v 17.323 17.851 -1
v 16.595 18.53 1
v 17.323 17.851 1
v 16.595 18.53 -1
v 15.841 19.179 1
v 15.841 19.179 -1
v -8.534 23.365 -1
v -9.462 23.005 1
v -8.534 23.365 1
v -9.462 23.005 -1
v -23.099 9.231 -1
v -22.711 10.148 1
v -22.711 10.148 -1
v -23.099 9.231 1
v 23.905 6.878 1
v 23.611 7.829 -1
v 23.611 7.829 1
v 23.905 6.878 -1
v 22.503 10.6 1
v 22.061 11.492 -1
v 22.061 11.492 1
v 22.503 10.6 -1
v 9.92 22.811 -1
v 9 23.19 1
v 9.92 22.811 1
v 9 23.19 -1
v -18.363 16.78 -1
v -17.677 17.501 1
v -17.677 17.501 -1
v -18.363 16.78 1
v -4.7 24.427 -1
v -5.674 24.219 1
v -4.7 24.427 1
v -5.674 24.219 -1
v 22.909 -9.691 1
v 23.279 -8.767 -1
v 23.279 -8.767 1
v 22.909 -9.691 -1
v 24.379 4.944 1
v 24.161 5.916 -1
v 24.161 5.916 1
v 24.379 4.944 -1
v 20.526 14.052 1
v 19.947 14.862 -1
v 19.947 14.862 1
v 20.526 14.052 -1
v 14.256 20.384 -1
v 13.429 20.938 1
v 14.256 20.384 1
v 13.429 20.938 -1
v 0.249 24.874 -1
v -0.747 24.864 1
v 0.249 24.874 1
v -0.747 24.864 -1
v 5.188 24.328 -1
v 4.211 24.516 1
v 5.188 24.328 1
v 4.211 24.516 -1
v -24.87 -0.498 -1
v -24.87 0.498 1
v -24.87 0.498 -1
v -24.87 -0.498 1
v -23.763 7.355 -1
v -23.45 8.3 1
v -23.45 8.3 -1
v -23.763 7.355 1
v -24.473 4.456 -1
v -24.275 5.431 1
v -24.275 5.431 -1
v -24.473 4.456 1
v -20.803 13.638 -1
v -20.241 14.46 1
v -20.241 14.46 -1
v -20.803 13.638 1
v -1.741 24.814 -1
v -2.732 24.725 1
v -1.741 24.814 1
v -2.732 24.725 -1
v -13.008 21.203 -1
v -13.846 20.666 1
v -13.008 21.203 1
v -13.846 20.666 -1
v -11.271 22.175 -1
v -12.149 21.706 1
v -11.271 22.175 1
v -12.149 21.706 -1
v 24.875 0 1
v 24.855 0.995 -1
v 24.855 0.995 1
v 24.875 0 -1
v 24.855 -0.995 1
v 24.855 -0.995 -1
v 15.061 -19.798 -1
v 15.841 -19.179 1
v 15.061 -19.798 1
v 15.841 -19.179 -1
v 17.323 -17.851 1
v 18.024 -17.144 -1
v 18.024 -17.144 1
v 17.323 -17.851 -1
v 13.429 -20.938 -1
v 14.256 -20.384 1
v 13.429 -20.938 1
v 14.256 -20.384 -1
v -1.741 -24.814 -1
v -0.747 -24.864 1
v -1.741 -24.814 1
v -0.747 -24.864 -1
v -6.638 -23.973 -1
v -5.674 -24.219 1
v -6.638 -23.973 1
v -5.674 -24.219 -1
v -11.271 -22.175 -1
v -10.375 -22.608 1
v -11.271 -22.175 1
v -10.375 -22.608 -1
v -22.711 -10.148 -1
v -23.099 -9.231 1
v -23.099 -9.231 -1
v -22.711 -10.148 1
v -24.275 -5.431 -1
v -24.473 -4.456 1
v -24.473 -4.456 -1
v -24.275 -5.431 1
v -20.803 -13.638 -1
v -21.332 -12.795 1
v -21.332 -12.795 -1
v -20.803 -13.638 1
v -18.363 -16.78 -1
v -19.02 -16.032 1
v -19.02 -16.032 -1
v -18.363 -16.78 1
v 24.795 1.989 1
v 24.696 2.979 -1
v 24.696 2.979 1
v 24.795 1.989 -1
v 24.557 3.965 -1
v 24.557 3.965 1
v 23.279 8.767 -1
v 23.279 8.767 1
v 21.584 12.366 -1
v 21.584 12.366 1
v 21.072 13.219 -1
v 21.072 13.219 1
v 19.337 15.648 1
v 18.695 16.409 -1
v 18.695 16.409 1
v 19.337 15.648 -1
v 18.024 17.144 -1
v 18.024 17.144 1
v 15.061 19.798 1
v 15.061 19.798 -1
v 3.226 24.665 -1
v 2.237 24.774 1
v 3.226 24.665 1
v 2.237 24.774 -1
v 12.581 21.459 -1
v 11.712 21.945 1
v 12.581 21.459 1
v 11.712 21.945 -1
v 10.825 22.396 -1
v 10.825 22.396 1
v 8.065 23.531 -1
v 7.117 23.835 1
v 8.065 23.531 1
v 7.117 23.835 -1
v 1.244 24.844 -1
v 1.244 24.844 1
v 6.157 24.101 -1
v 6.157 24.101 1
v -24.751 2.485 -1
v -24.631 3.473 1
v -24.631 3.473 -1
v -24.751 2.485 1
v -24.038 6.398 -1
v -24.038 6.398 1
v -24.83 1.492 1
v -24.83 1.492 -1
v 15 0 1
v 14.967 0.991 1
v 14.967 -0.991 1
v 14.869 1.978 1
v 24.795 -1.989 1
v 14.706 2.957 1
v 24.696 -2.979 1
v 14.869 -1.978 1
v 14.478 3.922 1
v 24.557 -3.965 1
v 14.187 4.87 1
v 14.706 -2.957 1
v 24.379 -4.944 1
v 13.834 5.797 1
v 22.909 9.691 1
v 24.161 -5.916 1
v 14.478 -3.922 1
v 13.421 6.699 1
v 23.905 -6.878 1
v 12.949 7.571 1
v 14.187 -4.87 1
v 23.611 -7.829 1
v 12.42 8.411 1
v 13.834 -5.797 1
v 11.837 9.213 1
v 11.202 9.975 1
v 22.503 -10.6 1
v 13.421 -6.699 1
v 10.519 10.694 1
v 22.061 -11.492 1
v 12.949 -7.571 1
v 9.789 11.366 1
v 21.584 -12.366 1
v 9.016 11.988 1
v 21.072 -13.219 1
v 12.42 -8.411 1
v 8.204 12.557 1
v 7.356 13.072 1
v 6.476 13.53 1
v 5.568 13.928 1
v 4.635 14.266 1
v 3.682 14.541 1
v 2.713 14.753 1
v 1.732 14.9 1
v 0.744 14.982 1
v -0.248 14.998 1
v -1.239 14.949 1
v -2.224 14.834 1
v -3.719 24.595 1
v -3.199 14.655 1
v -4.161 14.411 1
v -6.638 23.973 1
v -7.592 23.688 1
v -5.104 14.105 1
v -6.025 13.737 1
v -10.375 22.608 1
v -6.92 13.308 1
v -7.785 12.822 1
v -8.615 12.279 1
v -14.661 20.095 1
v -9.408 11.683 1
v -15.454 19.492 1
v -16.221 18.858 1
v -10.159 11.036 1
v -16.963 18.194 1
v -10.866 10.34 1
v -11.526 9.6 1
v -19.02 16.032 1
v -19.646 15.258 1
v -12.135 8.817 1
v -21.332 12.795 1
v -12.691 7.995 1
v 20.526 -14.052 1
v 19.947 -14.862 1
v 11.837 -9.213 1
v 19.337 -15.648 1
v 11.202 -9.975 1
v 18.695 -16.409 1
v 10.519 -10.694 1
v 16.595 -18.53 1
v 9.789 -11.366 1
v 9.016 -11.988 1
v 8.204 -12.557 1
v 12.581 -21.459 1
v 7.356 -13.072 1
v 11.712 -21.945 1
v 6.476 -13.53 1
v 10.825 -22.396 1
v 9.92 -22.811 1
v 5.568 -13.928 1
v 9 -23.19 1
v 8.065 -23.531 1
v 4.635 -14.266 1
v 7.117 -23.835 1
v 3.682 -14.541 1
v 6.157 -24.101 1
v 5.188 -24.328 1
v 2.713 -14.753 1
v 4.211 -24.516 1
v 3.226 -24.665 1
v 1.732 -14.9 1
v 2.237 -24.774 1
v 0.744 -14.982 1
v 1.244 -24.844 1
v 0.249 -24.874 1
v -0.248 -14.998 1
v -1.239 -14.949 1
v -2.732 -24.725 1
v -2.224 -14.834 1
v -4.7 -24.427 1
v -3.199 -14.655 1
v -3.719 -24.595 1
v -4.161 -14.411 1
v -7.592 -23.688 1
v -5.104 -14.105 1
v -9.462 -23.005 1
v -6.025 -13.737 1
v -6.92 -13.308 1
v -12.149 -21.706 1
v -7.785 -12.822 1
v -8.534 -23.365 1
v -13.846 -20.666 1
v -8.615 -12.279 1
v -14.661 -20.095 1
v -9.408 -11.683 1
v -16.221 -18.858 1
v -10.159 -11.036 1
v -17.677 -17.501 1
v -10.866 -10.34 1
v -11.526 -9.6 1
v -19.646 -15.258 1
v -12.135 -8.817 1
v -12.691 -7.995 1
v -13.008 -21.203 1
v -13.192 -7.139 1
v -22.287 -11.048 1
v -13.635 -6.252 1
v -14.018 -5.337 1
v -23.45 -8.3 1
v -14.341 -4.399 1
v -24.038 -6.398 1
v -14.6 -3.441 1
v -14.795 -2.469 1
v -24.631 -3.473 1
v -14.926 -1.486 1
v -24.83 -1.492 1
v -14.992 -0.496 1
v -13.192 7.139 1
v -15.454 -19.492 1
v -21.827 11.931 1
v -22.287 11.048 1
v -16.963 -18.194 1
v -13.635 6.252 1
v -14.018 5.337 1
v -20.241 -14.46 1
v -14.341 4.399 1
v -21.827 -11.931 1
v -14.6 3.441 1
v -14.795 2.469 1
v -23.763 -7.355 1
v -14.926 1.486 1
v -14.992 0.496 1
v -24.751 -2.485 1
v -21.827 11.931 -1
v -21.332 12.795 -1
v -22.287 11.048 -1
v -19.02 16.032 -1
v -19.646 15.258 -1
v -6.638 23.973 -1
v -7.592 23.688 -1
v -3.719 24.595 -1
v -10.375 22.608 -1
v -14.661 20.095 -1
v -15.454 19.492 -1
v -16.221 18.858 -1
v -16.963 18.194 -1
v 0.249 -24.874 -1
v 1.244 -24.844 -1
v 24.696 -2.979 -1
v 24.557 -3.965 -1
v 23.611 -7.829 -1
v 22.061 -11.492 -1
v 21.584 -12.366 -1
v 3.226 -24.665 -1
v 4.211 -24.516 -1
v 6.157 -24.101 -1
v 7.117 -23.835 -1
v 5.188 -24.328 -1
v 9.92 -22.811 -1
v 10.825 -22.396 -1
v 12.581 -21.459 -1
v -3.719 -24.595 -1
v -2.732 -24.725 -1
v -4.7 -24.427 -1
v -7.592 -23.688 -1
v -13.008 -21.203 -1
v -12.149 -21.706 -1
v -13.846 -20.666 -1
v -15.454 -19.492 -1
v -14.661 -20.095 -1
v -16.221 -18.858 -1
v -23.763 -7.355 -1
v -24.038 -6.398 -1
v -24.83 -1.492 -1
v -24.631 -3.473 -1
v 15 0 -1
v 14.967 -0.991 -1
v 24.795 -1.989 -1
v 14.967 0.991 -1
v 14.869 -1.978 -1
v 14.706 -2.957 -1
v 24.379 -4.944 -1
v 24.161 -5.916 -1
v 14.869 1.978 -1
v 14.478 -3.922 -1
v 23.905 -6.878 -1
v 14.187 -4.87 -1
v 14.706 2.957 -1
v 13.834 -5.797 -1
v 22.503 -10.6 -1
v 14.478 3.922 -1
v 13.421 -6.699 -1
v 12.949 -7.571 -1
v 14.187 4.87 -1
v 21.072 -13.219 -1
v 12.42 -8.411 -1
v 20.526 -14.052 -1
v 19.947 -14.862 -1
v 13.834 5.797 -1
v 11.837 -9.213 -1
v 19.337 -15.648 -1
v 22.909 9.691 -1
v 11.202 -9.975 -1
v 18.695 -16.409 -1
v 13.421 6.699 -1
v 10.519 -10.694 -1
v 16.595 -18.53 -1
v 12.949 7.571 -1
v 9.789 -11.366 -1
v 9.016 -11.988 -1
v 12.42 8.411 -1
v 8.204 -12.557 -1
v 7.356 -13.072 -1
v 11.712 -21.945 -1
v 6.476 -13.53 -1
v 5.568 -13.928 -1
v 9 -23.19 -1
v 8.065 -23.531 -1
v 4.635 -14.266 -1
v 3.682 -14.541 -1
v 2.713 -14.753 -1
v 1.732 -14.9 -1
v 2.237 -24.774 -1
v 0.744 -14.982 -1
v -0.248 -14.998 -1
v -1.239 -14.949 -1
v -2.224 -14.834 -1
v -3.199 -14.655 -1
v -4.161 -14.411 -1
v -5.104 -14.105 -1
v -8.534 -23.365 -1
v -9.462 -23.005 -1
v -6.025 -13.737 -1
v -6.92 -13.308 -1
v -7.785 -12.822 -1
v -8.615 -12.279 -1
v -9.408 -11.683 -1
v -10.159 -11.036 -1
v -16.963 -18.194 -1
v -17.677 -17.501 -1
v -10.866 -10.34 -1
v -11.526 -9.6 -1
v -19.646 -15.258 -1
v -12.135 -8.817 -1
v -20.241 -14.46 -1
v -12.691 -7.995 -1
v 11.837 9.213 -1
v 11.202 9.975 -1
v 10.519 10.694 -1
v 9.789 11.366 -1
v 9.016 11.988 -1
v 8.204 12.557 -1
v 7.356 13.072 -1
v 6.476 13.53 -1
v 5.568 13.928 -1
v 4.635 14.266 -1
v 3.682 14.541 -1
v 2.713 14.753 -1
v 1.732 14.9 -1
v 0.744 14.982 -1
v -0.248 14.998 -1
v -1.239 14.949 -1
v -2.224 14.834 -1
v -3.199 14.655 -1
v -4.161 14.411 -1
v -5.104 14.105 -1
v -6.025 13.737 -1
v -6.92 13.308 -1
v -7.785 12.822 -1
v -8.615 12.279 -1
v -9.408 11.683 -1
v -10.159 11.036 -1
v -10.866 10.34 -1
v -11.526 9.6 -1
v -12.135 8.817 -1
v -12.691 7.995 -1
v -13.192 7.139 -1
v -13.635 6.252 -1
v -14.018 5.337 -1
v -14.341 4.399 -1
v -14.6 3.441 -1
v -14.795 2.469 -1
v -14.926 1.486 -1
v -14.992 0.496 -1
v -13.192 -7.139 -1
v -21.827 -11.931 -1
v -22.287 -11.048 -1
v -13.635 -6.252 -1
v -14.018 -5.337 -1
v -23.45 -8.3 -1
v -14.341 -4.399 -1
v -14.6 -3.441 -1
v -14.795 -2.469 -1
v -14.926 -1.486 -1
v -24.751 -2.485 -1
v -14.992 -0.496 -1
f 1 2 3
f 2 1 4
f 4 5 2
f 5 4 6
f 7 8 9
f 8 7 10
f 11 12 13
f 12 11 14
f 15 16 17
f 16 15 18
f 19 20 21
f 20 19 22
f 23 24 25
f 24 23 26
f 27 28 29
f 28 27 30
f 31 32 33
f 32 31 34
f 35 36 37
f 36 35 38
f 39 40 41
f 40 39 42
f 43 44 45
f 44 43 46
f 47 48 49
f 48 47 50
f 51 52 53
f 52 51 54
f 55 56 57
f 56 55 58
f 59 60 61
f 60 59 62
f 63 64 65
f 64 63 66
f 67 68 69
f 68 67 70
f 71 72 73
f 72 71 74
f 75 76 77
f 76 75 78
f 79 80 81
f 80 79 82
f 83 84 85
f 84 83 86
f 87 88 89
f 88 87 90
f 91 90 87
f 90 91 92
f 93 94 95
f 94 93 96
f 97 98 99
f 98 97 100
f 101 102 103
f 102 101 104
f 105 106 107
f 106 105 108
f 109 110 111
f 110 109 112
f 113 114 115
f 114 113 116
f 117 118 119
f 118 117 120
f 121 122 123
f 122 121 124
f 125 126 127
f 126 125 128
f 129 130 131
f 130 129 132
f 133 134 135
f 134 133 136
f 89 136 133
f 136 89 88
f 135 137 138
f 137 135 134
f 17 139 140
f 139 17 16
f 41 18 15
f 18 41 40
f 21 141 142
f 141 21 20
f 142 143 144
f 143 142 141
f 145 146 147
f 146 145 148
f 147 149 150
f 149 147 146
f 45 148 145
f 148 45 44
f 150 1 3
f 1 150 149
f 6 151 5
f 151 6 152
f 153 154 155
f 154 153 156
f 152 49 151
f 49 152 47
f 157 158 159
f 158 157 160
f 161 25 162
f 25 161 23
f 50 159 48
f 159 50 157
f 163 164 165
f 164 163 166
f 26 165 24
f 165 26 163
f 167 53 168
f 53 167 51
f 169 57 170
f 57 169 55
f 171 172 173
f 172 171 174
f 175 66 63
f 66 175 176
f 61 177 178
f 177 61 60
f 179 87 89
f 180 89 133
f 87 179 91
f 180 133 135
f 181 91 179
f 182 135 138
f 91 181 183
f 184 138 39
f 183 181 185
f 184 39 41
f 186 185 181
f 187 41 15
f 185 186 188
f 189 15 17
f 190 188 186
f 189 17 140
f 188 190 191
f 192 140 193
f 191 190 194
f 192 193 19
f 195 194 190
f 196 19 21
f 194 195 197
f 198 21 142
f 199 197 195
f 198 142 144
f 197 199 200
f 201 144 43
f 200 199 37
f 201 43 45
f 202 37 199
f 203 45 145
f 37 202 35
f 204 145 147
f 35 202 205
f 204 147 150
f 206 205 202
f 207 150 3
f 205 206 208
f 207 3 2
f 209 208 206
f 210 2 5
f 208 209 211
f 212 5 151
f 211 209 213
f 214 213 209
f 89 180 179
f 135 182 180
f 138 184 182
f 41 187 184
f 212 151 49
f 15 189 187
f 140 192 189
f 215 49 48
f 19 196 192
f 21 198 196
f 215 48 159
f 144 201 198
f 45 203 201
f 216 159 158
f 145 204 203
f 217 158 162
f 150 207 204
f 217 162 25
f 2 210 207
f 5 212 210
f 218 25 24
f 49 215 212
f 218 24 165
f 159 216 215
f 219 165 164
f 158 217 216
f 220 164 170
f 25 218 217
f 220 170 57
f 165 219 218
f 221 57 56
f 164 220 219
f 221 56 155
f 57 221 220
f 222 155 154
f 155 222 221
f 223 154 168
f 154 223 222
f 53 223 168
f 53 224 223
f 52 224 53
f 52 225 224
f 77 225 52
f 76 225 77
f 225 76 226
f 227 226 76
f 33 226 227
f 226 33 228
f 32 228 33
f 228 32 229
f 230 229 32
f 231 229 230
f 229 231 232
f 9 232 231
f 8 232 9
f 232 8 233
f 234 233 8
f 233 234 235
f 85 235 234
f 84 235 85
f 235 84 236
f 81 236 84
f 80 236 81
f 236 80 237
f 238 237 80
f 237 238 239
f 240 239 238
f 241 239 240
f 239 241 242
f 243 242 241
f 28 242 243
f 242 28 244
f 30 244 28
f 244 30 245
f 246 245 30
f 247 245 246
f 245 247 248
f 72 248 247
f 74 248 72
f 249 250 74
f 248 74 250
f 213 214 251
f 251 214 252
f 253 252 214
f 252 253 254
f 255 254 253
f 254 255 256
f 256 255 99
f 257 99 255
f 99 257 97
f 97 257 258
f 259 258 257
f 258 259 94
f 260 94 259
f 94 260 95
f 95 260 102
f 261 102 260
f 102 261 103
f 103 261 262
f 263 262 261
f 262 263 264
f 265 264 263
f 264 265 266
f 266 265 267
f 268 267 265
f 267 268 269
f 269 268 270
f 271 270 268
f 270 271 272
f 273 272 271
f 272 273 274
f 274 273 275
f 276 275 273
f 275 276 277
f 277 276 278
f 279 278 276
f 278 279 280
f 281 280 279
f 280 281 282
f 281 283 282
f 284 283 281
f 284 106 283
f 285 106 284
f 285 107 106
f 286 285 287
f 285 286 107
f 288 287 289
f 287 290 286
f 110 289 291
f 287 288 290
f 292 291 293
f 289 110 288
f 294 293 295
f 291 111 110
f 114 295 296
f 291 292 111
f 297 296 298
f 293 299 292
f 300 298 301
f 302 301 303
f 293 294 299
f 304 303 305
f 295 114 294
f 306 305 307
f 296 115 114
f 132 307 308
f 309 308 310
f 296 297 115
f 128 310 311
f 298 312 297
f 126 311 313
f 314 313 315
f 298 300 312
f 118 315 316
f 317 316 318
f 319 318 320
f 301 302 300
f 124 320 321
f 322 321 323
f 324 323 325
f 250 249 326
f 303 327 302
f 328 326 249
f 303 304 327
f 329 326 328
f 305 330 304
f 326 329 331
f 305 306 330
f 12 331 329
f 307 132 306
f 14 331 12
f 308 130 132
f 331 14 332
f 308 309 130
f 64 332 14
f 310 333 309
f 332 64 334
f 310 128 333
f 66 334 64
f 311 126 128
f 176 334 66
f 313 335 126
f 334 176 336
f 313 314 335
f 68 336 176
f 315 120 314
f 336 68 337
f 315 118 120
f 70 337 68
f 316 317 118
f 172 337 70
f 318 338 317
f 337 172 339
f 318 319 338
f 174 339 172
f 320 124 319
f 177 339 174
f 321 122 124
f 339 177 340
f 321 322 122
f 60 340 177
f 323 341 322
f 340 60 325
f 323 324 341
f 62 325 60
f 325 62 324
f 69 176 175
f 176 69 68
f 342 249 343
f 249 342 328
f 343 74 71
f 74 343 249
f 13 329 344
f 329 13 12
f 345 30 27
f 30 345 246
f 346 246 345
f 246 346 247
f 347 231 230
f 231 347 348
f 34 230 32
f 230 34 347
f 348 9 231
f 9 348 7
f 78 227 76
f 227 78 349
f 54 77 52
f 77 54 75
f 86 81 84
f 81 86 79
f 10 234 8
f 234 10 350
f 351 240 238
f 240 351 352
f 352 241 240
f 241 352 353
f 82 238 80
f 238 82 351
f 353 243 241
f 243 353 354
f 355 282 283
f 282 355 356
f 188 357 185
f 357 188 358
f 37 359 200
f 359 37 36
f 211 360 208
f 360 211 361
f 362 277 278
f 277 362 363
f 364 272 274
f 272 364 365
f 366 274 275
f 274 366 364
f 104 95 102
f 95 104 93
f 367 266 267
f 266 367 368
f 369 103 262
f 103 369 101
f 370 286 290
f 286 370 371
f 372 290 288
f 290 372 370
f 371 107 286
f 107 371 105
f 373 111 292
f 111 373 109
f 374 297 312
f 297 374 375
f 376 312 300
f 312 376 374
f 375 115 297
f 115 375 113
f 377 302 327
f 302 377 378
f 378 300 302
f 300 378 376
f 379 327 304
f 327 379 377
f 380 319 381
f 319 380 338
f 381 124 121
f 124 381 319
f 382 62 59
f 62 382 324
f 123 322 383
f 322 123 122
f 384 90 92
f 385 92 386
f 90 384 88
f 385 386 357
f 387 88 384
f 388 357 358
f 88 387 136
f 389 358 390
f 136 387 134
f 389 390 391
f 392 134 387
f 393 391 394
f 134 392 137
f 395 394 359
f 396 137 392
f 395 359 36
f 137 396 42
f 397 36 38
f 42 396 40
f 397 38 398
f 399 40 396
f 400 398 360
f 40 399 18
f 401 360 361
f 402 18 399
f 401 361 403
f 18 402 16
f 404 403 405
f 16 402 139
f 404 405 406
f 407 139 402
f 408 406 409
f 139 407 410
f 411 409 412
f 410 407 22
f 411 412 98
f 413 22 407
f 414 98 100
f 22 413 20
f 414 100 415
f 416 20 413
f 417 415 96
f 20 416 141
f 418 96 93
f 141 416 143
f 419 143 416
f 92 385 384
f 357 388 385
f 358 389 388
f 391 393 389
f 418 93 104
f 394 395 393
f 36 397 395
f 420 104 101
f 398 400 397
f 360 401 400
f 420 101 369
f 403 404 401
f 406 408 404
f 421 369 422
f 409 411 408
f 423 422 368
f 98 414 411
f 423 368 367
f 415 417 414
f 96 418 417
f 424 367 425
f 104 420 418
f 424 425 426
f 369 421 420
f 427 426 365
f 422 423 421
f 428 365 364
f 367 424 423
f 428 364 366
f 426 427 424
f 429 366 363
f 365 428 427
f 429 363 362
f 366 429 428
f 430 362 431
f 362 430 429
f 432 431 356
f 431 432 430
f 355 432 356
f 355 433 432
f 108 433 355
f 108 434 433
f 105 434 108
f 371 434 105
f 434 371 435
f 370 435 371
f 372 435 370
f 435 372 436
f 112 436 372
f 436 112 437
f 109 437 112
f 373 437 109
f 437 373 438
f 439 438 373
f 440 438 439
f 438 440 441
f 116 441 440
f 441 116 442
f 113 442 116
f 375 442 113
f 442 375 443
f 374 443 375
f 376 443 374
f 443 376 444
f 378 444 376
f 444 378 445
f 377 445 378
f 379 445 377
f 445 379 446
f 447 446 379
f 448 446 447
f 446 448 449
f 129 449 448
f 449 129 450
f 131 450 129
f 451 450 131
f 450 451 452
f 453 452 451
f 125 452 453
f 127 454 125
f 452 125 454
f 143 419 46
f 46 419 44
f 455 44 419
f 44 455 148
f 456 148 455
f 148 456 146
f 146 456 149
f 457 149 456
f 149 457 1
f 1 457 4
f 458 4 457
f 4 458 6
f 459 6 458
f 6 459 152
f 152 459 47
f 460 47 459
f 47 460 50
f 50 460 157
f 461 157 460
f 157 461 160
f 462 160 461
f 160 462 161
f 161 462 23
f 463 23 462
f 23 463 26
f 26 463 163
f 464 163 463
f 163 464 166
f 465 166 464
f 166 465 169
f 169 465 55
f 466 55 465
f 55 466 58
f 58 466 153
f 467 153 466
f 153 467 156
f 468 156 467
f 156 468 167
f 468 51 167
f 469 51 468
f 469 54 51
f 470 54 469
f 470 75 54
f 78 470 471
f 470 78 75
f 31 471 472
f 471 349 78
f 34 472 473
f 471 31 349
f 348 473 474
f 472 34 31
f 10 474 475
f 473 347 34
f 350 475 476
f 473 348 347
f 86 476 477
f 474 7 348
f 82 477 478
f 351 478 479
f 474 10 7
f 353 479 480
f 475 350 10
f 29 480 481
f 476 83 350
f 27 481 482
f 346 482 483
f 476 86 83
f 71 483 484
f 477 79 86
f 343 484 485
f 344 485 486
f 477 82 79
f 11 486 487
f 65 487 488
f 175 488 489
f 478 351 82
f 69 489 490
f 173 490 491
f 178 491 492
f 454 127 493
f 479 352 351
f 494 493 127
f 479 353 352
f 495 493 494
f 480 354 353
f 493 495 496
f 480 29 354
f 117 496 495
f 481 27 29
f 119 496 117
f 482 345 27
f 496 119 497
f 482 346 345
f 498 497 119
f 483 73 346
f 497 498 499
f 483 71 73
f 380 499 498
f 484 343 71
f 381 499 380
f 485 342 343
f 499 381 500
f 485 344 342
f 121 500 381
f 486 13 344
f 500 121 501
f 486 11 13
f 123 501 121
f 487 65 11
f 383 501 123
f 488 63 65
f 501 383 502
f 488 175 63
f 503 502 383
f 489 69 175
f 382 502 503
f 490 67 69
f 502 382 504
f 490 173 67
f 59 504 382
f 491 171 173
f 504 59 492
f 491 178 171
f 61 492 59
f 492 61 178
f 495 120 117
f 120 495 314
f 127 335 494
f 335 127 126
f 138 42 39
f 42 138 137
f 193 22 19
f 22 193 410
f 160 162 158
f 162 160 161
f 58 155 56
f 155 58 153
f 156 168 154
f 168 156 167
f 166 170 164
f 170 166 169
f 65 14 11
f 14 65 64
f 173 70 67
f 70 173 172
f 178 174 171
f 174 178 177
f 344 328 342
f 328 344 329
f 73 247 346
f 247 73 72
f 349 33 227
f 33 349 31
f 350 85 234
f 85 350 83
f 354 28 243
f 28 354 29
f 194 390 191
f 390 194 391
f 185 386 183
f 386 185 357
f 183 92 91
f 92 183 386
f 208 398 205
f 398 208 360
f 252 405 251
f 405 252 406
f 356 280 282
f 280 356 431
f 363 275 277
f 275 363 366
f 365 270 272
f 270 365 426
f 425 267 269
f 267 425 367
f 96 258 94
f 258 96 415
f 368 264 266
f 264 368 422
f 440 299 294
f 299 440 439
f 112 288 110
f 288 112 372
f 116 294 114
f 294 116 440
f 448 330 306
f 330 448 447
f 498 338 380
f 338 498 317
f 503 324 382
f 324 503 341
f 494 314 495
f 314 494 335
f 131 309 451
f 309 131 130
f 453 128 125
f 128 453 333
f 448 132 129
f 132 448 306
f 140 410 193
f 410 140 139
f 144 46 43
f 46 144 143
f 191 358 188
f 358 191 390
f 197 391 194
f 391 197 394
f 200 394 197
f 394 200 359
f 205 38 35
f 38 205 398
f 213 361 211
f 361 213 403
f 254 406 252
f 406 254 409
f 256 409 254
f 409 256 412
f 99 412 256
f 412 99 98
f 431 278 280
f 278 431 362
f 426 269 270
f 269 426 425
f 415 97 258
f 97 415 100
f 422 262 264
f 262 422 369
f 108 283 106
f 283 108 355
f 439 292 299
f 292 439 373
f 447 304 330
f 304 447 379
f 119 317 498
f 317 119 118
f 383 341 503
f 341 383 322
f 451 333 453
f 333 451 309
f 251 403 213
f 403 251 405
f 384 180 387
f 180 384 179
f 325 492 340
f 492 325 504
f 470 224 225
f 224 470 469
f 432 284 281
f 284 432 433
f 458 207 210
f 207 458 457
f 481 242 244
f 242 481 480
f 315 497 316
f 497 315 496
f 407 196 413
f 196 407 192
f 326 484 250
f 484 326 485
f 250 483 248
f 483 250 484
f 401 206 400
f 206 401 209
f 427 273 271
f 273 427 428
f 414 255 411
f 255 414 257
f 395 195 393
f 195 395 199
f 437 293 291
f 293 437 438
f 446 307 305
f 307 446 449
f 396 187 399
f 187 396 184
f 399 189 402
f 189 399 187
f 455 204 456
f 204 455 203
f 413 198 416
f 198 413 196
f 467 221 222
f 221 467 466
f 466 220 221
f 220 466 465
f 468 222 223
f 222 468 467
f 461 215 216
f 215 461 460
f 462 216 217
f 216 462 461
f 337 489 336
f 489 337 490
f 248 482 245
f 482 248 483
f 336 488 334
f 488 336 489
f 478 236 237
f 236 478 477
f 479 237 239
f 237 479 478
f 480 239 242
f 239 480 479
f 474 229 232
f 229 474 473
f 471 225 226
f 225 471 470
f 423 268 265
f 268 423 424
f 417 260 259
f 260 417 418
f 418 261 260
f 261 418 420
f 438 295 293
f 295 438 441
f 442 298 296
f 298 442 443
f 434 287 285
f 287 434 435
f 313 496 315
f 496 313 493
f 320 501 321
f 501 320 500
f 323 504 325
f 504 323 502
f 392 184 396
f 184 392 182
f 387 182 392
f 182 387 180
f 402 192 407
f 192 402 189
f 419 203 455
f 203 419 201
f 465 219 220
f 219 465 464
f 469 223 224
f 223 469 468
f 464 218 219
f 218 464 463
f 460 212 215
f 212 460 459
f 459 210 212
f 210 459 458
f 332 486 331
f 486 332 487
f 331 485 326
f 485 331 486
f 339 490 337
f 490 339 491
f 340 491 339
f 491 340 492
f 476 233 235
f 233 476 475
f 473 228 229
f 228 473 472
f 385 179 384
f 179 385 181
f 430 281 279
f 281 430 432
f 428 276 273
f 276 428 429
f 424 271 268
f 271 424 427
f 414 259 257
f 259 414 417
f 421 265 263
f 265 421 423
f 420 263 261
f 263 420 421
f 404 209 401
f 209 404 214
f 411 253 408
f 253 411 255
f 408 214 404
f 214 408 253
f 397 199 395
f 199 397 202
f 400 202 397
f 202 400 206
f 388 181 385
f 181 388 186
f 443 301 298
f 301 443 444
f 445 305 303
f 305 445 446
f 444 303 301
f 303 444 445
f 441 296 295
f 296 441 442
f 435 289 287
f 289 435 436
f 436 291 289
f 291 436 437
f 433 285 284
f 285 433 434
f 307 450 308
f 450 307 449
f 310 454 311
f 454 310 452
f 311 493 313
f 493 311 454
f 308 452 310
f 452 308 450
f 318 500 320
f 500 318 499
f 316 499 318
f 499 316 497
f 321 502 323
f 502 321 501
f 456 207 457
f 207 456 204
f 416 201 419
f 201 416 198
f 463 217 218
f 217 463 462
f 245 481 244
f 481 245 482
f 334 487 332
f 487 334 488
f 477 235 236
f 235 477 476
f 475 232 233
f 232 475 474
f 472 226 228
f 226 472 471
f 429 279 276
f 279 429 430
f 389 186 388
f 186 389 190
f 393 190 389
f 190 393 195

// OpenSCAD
$fs=1;
$fa=0.4;

out_dia = 49.75;
out_rad = out_dia / 2;

inner_dia = 30;
inner_rad = inner_dia / 2;

thickness = 2;

offset = 0.1;

module centering_ring() {
    difference() {
    cylinder(h=thickness, r=out_rad, center=true);
    translate([0,0,-offset/2])
        cylinder(h=thickness+offset*2, r=inner_rad, center=true);
    }
}

centering_ring();
